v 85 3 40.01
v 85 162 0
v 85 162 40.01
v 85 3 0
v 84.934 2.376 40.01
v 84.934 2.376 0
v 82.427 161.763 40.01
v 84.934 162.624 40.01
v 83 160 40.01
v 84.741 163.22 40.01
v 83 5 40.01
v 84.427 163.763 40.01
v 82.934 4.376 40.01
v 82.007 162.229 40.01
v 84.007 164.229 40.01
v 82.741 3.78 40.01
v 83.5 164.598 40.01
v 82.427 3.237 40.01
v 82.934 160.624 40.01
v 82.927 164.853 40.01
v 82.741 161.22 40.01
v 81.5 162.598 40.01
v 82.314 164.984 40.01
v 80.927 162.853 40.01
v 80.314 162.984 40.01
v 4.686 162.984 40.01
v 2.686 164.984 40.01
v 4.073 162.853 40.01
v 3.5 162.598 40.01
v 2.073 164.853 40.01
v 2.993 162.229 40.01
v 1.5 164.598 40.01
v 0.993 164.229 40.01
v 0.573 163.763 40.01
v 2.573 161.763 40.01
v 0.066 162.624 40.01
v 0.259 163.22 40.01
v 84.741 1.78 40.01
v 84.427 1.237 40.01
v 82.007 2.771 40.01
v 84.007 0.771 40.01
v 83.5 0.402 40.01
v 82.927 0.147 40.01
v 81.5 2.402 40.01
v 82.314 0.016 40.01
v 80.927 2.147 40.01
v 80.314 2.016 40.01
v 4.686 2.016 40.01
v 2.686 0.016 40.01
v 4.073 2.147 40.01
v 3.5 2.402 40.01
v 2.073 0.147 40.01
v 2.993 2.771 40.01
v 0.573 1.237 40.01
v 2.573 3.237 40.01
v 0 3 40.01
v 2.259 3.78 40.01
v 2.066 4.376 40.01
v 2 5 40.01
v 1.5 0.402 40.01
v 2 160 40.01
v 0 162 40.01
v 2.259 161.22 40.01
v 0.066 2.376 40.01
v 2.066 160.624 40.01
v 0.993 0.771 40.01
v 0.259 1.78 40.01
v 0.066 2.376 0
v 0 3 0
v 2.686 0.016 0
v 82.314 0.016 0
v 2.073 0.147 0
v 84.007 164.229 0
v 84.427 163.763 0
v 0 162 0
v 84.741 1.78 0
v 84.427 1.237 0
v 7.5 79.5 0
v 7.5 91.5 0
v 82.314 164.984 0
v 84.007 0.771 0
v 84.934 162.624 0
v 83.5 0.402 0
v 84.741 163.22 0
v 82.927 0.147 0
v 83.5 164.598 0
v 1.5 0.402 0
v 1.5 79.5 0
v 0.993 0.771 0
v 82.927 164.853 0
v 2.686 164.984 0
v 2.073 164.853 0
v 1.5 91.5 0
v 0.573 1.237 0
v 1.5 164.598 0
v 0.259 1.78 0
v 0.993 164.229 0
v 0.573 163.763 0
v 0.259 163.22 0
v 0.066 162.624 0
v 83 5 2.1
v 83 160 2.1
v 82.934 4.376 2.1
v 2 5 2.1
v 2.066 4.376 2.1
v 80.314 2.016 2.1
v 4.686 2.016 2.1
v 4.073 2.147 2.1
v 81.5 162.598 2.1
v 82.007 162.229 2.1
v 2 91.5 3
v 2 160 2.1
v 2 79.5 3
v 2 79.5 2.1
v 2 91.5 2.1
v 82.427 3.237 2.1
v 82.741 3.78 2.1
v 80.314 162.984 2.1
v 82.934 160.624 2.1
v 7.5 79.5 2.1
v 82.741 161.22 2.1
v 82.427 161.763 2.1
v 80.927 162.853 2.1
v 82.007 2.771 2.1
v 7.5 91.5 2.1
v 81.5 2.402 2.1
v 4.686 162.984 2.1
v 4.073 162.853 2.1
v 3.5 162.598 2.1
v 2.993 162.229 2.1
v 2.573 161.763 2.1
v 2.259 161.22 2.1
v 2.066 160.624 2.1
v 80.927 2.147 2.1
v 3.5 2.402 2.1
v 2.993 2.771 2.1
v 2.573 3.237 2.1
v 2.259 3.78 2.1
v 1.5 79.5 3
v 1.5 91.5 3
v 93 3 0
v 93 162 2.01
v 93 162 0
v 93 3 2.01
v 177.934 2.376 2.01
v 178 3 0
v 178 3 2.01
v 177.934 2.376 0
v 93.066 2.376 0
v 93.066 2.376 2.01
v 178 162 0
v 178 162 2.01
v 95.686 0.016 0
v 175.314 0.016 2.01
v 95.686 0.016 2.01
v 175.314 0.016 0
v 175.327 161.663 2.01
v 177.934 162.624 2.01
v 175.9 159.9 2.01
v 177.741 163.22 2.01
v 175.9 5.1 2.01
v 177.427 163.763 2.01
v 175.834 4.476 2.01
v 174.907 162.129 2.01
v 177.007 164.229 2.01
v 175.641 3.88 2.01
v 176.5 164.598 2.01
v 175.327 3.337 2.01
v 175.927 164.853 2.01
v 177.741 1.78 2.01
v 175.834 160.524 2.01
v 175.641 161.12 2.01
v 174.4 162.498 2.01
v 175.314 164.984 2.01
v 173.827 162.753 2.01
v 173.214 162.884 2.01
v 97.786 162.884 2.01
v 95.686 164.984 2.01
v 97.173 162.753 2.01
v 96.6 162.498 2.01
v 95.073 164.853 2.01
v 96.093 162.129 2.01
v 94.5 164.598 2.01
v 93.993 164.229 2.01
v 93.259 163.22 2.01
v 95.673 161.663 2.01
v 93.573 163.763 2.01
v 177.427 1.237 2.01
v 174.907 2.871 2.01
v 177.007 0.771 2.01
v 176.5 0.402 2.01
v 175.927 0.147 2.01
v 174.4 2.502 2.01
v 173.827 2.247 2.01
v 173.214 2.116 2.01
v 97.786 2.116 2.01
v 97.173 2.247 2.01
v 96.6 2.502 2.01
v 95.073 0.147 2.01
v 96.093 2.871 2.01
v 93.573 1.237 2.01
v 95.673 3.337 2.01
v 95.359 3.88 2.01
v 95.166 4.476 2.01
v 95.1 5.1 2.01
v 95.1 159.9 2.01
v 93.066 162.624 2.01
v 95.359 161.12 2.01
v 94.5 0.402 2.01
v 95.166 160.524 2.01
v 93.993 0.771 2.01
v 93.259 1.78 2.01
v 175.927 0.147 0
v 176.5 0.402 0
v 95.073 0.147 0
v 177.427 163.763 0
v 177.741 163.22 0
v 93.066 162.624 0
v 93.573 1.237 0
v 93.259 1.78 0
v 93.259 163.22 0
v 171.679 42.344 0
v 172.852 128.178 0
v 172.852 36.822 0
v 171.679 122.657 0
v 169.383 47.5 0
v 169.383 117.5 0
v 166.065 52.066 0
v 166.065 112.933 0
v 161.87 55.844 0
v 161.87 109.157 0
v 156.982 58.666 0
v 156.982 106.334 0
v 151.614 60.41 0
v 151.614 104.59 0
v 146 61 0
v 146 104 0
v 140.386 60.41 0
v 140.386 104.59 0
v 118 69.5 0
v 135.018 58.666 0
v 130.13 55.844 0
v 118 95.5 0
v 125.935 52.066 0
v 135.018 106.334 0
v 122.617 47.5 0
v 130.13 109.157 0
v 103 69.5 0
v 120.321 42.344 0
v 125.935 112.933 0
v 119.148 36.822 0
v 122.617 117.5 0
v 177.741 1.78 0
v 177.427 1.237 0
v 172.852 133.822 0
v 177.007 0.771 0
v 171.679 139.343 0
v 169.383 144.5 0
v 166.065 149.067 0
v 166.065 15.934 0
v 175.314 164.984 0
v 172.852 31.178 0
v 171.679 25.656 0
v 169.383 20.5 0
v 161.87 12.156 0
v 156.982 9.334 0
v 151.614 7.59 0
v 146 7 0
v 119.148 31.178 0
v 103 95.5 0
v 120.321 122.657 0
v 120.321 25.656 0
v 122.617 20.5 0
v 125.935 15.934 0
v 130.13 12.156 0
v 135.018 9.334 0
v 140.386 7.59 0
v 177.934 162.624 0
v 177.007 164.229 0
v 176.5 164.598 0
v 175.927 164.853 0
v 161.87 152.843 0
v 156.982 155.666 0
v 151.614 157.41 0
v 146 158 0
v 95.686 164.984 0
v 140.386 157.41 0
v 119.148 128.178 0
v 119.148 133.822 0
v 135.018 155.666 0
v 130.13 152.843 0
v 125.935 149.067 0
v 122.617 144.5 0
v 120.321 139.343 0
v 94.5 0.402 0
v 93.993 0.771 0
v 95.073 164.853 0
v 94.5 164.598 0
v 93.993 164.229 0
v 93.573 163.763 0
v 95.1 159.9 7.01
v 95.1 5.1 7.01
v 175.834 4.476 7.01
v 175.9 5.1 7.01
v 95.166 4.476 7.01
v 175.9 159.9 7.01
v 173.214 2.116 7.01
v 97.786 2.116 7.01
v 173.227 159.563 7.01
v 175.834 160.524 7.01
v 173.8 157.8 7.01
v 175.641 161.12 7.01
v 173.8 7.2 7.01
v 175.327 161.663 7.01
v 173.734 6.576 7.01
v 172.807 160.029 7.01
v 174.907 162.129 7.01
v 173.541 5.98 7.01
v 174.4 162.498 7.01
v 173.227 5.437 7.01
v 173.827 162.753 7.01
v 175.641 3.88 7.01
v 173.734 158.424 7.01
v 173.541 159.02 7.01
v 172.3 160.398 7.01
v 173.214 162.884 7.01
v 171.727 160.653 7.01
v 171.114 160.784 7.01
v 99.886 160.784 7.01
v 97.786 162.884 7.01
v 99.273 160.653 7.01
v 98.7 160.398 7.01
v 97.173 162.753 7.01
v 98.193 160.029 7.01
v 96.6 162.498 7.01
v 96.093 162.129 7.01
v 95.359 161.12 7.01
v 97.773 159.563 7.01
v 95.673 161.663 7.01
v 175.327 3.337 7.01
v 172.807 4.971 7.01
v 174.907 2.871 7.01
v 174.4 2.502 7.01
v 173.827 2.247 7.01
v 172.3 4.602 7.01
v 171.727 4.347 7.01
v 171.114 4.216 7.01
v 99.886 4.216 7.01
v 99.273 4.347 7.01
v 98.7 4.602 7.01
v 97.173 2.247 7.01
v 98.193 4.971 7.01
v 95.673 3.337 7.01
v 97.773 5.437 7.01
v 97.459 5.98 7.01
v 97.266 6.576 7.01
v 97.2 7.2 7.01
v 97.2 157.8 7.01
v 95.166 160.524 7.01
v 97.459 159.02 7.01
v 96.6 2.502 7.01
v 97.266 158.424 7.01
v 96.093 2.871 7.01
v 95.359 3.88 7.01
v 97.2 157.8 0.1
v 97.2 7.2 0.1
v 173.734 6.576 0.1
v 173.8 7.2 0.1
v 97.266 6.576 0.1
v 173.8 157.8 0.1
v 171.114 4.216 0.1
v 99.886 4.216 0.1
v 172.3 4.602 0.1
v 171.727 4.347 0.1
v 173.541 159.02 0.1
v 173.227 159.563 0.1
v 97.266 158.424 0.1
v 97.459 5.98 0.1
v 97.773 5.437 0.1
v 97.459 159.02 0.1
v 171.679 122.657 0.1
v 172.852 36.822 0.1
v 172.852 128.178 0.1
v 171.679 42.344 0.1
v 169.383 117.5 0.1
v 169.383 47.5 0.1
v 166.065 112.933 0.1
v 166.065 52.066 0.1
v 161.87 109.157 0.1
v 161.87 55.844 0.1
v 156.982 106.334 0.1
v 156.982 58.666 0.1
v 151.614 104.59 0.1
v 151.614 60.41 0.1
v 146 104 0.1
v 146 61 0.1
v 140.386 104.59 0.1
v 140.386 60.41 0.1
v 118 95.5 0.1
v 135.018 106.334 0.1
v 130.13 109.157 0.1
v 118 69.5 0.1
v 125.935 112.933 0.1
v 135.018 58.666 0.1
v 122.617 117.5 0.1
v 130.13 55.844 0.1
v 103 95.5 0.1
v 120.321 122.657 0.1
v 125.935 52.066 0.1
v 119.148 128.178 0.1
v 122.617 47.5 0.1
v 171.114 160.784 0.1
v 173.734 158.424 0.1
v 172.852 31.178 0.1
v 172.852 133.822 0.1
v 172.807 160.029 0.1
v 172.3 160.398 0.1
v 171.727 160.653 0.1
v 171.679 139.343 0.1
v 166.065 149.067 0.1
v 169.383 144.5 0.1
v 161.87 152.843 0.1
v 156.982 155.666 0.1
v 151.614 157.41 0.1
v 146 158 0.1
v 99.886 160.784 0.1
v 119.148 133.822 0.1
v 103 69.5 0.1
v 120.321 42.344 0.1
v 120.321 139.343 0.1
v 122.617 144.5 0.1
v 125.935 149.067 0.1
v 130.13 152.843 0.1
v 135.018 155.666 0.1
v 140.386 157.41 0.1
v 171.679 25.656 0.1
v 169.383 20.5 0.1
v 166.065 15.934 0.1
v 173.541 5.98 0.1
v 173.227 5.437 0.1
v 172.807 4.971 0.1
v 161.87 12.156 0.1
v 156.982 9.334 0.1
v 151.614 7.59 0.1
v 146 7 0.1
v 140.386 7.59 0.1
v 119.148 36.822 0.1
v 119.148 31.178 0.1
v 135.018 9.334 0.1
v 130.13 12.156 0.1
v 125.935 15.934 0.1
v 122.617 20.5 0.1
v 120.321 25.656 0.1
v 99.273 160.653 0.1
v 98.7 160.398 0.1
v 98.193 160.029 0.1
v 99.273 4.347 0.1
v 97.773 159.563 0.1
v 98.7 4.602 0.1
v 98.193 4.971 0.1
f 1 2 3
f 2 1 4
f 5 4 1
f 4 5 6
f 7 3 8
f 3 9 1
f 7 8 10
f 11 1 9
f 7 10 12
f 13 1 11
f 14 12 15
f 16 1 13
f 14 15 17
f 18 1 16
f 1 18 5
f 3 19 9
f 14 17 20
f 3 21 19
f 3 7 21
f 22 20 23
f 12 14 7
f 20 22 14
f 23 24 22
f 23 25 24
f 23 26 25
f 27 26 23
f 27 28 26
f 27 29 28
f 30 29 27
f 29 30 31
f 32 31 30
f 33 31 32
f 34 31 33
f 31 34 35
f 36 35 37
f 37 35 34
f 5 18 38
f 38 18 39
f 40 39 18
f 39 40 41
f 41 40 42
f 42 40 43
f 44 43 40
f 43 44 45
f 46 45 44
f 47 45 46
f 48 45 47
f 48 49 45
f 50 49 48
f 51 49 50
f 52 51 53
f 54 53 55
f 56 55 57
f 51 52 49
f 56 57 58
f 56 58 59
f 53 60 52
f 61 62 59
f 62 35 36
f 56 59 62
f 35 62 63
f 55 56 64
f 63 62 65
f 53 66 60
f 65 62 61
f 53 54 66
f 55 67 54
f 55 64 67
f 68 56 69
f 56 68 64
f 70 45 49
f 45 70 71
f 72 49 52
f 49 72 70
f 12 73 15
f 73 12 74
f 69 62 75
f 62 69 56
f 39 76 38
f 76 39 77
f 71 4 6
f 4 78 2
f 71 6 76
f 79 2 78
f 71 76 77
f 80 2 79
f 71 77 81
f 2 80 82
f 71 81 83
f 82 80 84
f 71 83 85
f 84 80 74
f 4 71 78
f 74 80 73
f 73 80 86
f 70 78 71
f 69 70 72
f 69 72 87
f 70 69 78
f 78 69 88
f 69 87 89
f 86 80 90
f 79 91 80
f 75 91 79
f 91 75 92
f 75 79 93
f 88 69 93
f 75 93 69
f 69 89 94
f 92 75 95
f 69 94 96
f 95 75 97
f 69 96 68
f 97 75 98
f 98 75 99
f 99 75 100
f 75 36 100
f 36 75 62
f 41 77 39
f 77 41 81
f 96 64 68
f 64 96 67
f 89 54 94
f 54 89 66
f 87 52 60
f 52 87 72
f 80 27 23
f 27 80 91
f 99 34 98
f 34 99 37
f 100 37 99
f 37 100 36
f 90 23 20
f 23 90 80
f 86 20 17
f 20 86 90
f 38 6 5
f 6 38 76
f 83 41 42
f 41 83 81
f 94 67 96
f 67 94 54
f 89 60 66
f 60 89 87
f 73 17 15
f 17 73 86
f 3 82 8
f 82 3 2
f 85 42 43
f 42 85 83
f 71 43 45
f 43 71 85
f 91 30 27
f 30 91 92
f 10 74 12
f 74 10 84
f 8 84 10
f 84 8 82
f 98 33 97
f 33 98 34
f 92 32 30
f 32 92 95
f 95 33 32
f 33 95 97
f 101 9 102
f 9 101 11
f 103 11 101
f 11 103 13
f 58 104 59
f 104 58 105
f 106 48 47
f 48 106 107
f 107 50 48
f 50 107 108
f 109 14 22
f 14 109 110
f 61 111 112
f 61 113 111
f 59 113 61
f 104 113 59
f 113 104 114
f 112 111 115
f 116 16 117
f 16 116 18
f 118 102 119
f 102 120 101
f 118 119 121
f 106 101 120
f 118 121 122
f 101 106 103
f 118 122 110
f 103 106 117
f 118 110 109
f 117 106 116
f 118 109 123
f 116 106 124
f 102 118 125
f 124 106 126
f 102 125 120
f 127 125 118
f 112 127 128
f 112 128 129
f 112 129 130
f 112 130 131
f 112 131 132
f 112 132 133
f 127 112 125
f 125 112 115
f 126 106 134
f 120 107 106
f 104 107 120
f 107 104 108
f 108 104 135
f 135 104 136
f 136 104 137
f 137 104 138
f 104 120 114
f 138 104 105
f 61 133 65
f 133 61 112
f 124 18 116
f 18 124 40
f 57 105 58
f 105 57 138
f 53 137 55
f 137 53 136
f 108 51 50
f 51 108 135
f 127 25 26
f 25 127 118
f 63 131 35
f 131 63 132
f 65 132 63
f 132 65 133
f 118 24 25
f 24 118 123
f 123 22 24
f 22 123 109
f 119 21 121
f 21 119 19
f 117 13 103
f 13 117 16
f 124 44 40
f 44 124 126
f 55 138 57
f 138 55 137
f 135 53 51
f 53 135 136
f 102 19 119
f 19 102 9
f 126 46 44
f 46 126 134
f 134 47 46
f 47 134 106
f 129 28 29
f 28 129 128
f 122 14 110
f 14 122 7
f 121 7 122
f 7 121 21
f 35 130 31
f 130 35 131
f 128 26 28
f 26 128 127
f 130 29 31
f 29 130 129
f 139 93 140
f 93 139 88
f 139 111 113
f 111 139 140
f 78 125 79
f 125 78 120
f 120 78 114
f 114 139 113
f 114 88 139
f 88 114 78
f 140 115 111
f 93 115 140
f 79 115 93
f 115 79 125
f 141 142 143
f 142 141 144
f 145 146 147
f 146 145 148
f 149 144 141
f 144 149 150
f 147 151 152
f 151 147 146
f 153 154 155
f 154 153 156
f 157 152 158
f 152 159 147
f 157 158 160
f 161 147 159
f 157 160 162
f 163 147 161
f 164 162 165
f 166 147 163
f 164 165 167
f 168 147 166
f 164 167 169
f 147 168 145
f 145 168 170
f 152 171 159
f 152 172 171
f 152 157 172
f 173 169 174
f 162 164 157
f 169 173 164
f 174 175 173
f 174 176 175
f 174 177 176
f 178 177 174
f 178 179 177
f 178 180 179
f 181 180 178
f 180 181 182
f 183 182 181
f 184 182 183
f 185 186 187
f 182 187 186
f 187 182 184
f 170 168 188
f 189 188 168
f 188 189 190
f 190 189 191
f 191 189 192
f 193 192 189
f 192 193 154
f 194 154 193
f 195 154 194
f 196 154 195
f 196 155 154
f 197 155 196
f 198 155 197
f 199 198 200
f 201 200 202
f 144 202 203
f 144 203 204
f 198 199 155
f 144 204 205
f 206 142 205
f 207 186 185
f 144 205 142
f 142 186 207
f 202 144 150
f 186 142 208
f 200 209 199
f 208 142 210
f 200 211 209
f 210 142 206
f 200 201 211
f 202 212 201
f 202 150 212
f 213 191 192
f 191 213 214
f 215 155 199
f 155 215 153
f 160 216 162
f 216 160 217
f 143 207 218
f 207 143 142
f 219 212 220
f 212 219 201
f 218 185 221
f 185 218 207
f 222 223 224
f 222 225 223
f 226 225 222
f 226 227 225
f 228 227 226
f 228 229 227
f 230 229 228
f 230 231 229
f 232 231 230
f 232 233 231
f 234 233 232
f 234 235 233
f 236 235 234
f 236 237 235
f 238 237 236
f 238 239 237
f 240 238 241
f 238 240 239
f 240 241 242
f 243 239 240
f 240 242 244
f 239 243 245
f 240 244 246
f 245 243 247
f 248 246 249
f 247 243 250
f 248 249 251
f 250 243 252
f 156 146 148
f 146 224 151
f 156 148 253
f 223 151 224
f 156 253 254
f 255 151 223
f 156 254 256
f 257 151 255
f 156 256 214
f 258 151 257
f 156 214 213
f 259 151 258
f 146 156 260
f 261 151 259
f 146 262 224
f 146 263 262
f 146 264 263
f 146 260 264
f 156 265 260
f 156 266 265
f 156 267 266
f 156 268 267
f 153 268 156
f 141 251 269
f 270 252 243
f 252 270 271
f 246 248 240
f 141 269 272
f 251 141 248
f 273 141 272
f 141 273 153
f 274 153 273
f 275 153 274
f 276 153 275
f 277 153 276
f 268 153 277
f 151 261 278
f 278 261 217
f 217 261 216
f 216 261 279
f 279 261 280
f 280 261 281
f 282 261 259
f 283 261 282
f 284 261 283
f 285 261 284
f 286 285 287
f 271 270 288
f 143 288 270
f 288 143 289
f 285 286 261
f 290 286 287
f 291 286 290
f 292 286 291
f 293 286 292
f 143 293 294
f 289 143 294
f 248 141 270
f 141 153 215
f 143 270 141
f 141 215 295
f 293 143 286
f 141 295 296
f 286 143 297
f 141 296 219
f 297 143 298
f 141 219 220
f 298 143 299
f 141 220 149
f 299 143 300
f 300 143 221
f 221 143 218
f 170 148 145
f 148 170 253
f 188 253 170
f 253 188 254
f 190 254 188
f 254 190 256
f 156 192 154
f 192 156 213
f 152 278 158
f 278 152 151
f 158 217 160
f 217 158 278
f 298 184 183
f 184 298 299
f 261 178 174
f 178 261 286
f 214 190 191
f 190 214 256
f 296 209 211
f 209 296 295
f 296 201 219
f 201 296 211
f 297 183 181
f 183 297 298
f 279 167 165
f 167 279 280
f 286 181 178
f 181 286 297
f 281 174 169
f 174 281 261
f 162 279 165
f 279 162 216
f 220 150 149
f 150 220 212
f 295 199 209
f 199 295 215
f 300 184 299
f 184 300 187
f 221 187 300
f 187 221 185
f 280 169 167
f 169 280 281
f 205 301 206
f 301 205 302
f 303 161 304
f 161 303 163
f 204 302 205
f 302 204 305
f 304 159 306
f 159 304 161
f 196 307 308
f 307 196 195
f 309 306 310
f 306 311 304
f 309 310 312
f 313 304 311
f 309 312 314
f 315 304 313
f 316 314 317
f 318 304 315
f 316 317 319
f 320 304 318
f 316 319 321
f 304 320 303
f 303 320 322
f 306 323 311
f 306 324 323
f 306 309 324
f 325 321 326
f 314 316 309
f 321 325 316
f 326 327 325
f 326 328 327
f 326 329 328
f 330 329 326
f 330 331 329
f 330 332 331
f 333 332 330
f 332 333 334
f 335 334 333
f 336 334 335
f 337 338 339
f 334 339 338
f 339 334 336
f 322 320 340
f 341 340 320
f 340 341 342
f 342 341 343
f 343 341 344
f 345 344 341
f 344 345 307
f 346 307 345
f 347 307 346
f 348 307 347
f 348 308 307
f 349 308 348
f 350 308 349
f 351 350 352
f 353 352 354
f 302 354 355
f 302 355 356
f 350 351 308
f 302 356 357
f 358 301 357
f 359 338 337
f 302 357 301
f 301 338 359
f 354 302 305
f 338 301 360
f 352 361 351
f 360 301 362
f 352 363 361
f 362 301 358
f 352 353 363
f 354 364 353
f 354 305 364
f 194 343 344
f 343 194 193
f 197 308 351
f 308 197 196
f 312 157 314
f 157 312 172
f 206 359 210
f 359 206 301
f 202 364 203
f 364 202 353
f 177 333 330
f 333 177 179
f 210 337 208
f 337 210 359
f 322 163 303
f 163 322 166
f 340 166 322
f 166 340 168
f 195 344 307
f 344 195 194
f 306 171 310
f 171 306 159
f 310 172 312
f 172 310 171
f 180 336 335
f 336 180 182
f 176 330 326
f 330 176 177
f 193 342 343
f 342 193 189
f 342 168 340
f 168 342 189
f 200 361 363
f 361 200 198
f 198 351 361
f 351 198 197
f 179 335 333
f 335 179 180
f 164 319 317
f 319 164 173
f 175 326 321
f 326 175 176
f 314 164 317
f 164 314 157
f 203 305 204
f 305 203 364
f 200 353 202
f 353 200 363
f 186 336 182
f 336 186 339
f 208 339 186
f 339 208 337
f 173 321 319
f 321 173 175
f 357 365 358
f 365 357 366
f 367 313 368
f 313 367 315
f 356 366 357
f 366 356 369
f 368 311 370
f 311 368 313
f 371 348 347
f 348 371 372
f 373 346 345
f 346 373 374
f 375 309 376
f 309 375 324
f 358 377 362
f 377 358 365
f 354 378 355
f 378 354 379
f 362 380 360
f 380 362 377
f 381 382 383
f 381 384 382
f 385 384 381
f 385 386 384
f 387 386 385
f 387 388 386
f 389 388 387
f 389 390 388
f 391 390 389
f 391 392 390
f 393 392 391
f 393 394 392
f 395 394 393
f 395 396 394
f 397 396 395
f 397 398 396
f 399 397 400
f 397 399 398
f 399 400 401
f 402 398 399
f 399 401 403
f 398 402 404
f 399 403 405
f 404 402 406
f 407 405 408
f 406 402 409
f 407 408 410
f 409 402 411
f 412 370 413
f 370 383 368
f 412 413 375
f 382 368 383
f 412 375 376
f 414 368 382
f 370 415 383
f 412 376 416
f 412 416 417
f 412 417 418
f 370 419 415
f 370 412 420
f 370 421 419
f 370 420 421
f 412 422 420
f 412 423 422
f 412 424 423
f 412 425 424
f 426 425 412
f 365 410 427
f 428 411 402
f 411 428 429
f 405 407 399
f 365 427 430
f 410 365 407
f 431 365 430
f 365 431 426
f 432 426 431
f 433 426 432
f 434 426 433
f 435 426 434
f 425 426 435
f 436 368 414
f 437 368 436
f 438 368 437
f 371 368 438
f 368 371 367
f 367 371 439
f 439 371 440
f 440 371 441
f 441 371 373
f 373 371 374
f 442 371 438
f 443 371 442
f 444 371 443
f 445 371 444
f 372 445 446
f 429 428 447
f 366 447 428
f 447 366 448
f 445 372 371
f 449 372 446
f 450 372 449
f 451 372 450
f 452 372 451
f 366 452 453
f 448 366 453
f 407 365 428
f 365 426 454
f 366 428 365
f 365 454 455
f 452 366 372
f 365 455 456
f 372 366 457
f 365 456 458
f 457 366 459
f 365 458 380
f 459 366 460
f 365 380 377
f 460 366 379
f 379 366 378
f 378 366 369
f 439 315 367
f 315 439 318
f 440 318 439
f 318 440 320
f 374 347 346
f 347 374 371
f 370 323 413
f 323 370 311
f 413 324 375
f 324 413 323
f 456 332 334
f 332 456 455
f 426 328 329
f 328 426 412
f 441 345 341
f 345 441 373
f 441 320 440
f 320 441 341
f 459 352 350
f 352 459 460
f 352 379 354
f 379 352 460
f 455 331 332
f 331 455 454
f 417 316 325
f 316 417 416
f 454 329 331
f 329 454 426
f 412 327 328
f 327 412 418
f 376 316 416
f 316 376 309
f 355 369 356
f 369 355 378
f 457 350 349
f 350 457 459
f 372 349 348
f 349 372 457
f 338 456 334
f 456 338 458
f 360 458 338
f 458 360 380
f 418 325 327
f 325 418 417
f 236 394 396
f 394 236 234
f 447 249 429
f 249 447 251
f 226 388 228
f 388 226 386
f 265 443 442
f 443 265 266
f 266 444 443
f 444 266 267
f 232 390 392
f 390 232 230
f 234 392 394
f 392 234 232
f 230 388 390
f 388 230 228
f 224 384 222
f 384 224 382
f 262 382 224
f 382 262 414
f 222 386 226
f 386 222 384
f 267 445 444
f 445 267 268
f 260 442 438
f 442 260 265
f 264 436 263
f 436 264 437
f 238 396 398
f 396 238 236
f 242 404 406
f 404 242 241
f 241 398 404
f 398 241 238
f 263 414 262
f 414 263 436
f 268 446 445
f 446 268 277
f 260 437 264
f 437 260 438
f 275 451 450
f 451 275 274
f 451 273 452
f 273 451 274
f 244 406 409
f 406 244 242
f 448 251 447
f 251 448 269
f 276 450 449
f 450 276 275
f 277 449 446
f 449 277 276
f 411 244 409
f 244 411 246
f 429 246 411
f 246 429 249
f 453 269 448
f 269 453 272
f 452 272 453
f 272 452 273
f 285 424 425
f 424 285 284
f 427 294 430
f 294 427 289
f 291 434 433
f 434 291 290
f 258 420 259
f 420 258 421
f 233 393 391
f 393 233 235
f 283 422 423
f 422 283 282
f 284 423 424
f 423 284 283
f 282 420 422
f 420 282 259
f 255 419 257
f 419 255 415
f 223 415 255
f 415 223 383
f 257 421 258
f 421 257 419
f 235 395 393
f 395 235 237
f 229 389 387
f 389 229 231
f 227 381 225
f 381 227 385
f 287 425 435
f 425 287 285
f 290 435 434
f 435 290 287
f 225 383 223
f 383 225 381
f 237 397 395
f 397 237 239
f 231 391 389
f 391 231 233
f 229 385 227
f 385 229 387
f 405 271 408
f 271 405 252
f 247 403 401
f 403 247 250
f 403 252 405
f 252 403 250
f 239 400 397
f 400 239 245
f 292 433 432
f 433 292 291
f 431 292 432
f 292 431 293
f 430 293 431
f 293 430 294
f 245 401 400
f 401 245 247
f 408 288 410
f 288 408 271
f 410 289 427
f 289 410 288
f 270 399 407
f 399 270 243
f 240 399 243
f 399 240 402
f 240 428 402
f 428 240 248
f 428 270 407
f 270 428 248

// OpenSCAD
$fs=0.2;

// NOTE: length/width/height are exterior dimensions. Interior dimensions 
// are thick*2 smaller than these.
length = 165; //4.1 * 25.4;
width= 85; //3.1 * 25.4;
height = 40; //1.6 * 25.4;
cornerRadius = 3;
slop = 0.1;
thick = 2.0;
wireRadius = 6;
speakerRadius = 27;
lidRimHeight = 5;

lidSlop = 0.2; // the rim on the lid will be this much smaller than the box

centerWidth = width/2-cornerRadius;

translate([cornerRadius, cornerRadius, 0]){
  difference() {
    roundedBox(length, width, height, cornerRadius);
    translate([thick,thick,thick+slop])
      roundedBox(length-thick*2, width-thick*2, height-thick+slop, cornerRadius);

    // Hole for wires
    translate([-cornerRadius/2, length/2-wireRadius, -thick/2])
      cube(size=[wireRadius, wireRadius*2, thick*2], center=false);
    
    //rotate([0,90,0])
    //  translate([-width/2, length/2, -cornerRadius-thick])
    //    %cylinder(r=3, h=thick*3);
  }
}
// 75 wide, 30-58
// Make the lid
lidThick = thick + lidSlop/2;
translate([width*2+5, cornerRadius, 0]){
  mirror([1,0,0]) {
    difference() {
      union() {
        roundedBox(length, width, thick, cornerRadius);
        translate([lidThick, lidThick, 0])
          roundedBox(length-lidThick*2, width-lidThick*2, thick+lidRimHeight, cornerRadius);
      }
      translate([lidThick*2, lidThick*2, 0+slop])
        roundedBox(length-lidThick*4, width-lidThick*4, thick+lidRimHeight+slop, cornerRadius);

      // Hole for speakers
      translate([width/2-speakerRadius/2, speakerRadius+10-cornerRadius*2, -thick/2])
        rotate([0,0,90])
          cylinder(r=speakerRadius, h=lidThick*2);
      translate([width/2-speakerRadius/2, length-speakerRadius-10, -thick/2])
        rotate([0,0,90])
          cylinder(r=speakerRadius, h=lidThick*2);
      
      // hole for display
      translate([width-13, length/2-13-cornerRadius, -thick/2])
        rotate([0,0,90])
          cube(size=[26, 15, thick*2], center=false);
    }
  }
}


module roundedBox(length, width, height, radius){
  dRadius = 2*radius;

  //cube bottom right
  //translate([width-dRadius,-radius,0])
  //  cube(size=[radius,radius,height+0.01]);

  //cube top left
  //translate([-radius,length-dRadius,0])
  //  cube(size=[radius,radius,height+0.01]);

  //base rounded shape
  minkowski() {
    cube(size=[width-dRadius,length-dRadius, height]);
    cylinder(r=radius, h=0.01);
  }
}
